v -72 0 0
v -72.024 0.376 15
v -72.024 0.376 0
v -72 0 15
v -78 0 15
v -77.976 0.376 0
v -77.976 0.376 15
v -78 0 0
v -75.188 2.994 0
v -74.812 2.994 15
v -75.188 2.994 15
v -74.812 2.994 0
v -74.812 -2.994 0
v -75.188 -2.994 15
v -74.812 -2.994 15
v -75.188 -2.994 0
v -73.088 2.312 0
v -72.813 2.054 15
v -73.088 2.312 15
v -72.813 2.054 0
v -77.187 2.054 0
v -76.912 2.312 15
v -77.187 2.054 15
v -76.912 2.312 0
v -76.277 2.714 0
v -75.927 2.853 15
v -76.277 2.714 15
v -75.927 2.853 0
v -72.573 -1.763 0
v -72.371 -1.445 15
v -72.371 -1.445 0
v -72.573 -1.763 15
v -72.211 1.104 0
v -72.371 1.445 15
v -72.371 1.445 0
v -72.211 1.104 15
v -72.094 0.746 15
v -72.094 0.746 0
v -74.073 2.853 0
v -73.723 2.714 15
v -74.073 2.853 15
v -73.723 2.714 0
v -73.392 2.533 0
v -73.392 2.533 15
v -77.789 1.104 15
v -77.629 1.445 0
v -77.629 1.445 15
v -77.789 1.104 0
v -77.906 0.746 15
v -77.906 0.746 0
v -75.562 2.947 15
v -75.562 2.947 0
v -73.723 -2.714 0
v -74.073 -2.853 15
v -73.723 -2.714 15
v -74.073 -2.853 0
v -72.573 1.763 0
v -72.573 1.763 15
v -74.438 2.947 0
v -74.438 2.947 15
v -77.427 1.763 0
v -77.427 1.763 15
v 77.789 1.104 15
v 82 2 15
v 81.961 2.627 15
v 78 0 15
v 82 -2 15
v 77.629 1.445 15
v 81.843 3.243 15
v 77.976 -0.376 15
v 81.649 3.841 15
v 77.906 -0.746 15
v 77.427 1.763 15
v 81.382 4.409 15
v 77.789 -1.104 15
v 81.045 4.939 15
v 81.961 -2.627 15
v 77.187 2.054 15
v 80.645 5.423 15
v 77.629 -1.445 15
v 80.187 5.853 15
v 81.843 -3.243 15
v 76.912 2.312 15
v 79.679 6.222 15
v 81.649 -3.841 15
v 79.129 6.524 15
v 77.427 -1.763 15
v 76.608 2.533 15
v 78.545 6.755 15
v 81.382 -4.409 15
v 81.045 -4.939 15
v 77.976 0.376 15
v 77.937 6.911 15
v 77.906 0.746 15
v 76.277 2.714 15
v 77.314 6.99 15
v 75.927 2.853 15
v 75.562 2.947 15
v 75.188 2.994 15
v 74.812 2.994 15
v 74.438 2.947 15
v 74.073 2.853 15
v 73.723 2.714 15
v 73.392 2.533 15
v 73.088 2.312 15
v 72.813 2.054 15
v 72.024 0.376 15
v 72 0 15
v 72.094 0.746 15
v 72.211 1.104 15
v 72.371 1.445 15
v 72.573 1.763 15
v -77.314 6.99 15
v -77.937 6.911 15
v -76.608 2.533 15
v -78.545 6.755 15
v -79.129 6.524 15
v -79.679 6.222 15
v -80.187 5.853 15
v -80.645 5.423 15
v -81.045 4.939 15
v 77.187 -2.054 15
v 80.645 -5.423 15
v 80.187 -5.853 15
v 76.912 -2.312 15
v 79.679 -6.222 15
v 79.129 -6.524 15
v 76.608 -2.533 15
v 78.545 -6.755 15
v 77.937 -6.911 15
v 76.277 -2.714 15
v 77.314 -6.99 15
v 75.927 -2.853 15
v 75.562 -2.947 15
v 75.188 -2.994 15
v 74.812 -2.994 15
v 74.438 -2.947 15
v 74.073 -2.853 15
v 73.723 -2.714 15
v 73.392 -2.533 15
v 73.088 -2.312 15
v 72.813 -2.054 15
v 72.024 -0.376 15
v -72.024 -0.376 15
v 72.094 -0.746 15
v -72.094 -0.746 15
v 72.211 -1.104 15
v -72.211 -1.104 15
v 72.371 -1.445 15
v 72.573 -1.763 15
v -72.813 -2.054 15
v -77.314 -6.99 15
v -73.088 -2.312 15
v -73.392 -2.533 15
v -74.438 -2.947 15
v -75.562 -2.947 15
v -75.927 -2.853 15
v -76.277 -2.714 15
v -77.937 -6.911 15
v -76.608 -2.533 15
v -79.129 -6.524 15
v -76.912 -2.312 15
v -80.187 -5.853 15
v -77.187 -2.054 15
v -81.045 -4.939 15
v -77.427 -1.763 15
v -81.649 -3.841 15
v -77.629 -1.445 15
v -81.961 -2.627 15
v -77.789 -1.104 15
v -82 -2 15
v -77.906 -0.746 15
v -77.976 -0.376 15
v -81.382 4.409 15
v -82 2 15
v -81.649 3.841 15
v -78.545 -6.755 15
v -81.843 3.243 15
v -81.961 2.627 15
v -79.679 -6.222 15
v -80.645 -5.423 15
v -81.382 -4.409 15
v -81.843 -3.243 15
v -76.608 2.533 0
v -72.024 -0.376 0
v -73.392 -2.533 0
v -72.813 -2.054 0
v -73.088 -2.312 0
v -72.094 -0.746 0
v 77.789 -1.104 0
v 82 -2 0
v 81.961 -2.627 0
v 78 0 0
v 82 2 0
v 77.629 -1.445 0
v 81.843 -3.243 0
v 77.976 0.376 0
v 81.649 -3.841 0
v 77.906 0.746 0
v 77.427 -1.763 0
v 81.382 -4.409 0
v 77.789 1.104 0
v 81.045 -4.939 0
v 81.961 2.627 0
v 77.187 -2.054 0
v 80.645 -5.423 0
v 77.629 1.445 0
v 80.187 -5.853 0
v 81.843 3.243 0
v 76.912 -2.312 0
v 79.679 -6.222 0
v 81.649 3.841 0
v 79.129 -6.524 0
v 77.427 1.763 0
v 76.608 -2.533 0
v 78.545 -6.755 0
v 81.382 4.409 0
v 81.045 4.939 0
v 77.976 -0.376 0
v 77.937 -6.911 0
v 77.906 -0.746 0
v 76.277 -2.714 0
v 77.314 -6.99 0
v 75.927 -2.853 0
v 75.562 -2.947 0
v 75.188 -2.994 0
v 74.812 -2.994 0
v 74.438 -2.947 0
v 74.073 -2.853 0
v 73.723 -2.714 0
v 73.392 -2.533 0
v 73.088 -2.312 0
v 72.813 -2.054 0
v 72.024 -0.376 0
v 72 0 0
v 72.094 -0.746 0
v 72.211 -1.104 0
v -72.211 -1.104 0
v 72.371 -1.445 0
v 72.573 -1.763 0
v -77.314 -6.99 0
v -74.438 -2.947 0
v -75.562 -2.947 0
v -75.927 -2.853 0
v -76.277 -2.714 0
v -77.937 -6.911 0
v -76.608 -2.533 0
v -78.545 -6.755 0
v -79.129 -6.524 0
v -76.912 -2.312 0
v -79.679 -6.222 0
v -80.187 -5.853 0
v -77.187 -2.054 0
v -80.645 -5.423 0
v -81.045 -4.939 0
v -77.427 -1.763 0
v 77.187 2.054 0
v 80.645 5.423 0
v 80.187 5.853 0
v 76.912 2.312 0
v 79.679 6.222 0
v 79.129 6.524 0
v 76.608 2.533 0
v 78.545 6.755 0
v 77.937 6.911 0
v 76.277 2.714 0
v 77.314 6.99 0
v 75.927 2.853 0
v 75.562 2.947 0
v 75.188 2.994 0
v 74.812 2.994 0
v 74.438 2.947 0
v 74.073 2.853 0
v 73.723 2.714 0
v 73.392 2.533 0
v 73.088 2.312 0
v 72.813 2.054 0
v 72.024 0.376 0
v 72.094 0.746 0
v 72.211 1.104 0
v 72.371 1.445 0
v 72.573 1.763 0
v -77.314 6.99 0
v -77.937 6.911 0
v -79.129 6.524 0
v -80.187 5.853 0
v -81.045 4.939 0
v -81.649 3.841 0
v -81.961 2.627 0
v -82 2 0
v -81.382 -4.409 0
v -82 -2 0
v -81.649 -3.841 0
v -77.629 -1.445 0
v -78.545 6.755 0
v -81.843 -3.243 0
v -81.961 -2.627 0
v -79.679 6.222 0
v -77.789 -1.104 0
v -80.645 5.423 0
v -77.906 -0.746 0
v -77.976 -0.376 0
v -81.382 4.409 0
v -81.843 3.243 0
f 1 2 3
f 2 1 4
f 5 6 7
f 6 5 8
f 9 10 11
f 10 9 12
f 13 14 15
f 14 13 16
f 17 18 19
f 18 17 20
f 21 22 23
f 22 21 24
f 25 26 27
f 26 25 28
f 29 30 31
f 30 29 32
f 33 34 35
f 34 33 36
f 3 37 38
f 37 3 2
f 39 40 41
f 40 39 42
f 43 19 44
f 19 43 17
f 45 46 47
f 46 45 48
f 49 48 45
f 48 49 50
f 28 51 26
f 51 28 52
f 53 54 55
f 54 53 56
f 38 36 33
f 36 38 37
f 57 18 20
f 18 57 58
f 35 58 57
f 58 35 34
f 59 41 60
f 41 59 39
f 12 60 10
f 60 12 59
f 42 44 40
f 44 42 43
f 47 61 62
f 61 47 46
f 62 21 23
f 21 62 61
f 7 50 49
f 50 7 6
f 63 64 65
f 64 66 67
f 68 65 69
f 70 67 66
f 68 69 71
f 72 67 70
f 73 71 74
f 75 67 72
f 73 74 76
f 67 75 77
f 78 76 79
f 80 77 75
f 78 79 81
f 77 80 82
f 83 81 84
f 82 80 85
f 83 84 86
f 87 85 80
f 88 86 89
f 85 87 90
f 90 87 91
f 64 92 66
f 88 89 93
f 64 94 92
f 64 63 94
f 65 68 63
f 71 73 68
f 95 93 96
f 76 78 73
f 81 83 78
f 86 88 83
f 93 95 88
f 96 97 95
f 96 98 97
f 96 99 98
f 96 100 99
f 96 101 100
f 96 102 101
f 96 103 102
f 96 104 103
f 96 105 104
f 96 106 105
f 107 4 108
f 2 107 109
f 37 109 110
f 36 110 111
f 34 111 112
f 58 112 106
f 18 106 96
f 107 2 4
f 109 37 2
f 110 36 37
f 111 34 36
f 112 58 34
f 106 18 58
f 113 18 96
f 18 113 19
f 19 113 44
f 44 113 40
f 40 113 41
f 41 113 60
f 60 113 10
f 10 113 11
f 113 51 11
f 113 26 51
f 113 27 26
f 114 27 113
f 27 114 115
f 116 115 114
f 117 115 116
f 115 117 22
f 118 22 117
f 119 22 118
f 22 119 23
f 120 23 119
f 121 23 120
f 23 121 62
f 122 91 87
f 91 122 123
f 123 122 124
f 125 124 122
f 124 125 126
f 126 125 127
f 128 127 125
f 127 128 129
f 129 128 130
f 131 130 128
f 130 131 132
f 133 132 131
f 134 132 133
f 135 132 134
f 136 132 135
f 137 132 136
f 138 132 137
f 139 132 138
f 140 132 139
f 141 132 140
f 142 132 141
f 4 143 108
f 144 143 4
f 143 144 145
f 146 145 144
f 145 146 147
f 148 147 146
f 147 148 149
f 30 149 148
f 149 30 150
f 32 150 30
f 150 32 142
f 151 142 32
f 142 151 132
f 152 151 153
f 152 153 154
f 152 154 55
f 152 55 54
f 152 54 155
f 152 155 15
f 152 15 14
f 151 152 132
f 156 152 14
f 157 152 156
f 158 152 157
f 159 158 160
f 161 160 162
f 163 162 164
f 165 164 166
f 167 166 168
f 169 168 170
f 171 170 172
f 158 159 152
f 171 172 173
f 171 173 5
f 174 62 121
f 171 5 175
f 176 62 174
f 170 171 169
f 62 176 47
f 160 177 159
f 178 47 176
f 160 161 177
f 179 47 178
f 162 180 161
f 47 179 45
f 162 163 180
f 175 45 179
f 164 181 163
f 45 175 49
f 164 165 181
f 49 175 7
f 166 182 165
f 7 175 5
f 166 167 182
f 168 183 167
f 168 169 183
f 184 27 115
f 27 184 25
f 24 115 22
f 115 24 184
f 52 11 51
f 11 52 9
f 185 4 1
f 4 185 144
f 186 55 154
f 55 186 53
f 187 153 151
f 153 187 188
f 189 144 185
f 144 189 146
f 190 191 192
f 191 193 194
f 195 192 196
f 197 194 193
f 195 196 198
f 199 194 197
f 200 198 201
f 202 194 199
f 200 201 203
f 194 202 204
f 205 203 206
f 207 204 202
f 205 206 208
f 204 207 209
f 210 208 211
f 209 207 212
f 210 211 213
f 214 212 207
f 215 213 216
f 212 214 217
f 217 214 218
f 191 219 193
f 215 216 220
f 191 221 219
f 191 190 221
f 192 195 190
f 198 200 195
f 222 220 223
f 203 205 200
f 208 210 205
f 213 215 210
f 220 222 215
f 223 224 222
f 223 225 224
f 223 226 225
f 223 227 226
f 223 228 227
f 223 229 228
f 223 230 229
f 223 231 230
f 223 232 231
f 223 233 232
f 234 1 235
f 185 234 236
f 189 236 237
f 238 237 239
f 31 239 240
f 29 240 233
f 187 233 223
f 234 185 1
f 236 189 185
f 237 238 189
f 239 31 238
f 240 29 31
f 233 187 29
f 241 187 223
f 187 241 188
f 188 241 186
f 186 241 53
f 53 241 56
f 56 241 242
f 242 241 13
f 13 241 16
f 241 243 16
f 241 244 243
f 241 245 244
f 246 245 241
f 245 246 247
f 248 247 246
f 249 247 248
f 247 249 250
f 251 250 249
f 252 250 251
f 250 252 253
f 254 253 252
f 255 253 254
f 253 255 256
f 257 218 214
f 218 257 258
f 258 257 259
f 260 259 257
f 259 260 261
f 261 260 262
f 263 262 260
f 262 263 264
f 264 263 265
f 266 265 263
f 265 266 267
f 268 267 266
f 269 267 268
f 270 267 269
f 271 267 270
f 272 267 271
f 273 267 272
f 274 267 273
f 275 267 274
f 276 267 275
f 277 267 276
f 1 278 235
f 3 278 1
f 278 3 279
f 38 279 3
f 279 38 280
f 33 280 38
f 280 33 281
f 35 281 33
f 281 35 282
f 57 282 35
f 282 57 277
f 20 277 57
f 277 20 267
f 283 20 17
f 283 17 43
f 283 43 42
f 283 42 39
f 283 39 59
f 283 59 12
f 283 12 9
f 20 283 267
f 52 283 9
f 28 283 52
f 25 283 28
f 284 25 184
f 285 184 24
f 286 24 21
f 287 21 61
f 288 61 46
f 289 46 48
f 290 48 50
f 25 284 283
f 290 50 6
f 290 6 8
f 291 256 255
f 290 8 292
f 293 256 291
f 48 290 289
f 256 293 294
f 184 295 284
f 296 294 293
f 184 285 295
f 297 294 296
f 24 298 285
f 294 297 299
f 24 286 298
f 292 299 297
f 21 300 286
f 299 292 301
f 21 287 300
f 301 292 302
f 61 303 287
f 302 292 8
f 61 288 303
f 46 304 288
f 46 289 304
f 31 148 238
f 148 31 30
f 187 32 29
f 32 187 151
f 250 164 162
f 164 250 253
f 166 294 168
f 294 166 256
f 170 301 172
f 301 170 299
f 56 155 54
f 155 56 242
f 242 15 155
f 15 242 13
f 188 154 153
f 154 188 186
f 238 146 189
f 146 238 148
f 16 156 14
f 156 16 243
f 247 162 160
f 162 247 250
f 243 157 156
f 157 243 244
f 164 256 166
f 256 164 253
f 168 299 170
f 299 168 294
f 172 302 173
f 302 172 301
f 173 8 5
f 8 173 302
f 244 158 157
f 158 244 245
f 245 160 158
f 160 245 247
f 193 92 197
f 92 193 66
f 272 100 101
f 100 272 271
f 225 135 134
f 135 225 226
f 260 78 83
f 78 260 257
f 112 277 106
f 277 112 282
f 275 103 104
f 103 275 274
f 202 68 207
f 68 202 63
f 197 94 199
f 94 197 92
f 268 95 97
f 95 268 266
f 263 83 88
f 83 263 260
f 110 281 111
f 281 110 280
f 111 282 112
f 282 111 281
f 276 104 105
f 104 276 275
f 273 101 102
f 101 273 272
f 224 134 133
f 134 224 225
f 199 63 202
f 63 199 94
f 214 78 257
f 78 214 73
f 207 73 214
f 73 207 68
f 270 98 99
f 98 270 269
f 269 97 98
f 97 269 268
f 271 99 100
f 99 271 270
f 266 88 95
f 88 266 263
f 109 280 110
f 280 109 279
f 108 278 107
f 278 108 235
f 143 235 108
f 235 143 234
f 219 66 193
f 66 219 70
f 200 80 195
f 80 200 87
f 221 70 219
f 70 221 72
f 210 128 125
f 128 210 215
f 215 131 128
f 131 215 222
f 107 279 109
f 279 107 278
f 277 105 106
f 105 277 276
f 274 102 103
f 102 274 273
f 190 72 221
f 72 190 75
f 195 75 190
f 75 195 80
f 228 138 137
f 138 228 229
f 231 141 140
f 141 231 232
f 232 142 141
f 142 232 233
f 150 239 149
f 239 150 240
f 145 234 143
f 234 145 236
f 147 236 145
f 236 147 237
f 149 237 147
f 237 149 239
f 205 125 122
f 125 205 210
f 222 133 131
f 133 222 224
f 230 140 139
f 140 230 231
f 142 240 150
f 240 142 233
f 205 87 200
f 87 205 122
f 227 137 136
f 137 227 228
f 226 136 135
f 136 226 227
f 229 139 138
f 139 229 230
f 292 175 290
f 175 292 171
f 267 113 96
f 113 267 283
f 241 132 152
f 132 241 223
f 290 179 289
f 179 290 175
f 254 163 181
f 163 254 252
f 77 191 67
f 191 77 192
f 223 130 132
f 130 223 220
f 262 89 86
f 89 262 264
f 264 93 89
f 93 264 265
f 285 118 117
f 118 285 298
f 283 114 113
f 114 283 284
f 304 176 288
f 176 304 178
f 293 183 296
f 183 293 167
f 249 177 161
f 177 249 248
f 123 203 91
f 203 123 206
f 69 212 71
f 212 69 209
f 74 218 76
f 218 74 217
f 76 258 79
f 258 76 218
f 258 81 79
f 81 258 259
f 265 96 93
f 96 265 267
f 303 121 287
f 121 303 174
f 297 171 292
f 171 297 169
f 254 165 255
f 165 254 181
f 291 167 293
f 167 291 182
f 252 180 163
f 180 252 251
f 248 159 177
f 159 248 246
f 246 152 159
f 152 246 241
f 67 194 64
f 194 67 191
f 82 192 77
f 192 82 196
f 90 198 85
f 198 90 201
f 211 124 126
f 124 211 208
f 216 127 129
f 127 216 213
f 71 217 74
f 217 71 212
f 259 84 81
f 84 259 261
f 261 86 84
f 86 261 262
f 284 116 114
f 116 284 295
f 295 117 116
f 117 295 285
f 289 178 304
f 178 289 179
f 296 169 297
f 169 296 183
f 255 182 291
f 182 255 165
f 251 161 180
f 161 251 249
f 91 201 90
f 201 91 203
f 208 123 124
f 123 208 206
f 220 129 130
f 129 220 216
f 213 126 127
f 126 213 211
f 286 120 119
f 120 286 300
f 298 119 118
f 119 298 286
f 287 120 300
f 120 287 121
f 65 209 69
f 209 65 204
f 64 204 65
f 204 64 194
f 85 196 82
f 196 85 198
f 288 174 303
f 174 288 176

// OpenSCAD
$fn = 50;


difference() {
	union() {
		hull() {
			translate(v = [-77.0000000000, 2.0000000000, 0]) {
				cylinder(h = 15, r = 5);
			}
			translate(v = [77.0000000000, 2.0000000000, 0]) {
				cylinder(h = 15, r = 5);
			}
			translate(v = [-77.0000000000, -2.0000000000, 0]) {
				cylinder(h = 15, r = 5);
			}
			translate(v = [77.0000000000, -2.0000000000, 0]) {
				cylinder(h = 15, r = 5);
			}
		}
	}
	union() {
		translate(v = [-75.0000000000, 0.0000000000, 0]) {
			cylinder(h = 15, r = 3.0000000000);
		}
		translate(v = [75.0000000000, 0.0000000000, 0]) {
			cylinder(h = 15, r = 3.0000000000);
		}
		translate(v = [-75.0000000000, 0.0000000000, 0]) {
			cylinder(h = 15, r = 1.5000000000);
		}
		translate(v = [75.0000000000, 0.0000000000, 0]) {
			cylinder(h = 15, r = 1.5000000000);
		}
		translate(v = [-75.0000000000, 0.0000000000, 0]) {
			cylinder(h = 15, r = 1.5000000000);
		}
		translate(v = [75.0000000000, 0.0000000000, 0]) {
			cylinder(h = 15, r = 1.5000000000);
		}
		translate(v = [-75.0000000000, 0.0000000000, 0]) {
			cylinder(h = 15, r = 1.5000000000);
		}
		translate(v = [75.0000000000, 0.0000000000, 0]) {
			cylinder(h = 15, r = 1.5000000000);
		}
	}
}
